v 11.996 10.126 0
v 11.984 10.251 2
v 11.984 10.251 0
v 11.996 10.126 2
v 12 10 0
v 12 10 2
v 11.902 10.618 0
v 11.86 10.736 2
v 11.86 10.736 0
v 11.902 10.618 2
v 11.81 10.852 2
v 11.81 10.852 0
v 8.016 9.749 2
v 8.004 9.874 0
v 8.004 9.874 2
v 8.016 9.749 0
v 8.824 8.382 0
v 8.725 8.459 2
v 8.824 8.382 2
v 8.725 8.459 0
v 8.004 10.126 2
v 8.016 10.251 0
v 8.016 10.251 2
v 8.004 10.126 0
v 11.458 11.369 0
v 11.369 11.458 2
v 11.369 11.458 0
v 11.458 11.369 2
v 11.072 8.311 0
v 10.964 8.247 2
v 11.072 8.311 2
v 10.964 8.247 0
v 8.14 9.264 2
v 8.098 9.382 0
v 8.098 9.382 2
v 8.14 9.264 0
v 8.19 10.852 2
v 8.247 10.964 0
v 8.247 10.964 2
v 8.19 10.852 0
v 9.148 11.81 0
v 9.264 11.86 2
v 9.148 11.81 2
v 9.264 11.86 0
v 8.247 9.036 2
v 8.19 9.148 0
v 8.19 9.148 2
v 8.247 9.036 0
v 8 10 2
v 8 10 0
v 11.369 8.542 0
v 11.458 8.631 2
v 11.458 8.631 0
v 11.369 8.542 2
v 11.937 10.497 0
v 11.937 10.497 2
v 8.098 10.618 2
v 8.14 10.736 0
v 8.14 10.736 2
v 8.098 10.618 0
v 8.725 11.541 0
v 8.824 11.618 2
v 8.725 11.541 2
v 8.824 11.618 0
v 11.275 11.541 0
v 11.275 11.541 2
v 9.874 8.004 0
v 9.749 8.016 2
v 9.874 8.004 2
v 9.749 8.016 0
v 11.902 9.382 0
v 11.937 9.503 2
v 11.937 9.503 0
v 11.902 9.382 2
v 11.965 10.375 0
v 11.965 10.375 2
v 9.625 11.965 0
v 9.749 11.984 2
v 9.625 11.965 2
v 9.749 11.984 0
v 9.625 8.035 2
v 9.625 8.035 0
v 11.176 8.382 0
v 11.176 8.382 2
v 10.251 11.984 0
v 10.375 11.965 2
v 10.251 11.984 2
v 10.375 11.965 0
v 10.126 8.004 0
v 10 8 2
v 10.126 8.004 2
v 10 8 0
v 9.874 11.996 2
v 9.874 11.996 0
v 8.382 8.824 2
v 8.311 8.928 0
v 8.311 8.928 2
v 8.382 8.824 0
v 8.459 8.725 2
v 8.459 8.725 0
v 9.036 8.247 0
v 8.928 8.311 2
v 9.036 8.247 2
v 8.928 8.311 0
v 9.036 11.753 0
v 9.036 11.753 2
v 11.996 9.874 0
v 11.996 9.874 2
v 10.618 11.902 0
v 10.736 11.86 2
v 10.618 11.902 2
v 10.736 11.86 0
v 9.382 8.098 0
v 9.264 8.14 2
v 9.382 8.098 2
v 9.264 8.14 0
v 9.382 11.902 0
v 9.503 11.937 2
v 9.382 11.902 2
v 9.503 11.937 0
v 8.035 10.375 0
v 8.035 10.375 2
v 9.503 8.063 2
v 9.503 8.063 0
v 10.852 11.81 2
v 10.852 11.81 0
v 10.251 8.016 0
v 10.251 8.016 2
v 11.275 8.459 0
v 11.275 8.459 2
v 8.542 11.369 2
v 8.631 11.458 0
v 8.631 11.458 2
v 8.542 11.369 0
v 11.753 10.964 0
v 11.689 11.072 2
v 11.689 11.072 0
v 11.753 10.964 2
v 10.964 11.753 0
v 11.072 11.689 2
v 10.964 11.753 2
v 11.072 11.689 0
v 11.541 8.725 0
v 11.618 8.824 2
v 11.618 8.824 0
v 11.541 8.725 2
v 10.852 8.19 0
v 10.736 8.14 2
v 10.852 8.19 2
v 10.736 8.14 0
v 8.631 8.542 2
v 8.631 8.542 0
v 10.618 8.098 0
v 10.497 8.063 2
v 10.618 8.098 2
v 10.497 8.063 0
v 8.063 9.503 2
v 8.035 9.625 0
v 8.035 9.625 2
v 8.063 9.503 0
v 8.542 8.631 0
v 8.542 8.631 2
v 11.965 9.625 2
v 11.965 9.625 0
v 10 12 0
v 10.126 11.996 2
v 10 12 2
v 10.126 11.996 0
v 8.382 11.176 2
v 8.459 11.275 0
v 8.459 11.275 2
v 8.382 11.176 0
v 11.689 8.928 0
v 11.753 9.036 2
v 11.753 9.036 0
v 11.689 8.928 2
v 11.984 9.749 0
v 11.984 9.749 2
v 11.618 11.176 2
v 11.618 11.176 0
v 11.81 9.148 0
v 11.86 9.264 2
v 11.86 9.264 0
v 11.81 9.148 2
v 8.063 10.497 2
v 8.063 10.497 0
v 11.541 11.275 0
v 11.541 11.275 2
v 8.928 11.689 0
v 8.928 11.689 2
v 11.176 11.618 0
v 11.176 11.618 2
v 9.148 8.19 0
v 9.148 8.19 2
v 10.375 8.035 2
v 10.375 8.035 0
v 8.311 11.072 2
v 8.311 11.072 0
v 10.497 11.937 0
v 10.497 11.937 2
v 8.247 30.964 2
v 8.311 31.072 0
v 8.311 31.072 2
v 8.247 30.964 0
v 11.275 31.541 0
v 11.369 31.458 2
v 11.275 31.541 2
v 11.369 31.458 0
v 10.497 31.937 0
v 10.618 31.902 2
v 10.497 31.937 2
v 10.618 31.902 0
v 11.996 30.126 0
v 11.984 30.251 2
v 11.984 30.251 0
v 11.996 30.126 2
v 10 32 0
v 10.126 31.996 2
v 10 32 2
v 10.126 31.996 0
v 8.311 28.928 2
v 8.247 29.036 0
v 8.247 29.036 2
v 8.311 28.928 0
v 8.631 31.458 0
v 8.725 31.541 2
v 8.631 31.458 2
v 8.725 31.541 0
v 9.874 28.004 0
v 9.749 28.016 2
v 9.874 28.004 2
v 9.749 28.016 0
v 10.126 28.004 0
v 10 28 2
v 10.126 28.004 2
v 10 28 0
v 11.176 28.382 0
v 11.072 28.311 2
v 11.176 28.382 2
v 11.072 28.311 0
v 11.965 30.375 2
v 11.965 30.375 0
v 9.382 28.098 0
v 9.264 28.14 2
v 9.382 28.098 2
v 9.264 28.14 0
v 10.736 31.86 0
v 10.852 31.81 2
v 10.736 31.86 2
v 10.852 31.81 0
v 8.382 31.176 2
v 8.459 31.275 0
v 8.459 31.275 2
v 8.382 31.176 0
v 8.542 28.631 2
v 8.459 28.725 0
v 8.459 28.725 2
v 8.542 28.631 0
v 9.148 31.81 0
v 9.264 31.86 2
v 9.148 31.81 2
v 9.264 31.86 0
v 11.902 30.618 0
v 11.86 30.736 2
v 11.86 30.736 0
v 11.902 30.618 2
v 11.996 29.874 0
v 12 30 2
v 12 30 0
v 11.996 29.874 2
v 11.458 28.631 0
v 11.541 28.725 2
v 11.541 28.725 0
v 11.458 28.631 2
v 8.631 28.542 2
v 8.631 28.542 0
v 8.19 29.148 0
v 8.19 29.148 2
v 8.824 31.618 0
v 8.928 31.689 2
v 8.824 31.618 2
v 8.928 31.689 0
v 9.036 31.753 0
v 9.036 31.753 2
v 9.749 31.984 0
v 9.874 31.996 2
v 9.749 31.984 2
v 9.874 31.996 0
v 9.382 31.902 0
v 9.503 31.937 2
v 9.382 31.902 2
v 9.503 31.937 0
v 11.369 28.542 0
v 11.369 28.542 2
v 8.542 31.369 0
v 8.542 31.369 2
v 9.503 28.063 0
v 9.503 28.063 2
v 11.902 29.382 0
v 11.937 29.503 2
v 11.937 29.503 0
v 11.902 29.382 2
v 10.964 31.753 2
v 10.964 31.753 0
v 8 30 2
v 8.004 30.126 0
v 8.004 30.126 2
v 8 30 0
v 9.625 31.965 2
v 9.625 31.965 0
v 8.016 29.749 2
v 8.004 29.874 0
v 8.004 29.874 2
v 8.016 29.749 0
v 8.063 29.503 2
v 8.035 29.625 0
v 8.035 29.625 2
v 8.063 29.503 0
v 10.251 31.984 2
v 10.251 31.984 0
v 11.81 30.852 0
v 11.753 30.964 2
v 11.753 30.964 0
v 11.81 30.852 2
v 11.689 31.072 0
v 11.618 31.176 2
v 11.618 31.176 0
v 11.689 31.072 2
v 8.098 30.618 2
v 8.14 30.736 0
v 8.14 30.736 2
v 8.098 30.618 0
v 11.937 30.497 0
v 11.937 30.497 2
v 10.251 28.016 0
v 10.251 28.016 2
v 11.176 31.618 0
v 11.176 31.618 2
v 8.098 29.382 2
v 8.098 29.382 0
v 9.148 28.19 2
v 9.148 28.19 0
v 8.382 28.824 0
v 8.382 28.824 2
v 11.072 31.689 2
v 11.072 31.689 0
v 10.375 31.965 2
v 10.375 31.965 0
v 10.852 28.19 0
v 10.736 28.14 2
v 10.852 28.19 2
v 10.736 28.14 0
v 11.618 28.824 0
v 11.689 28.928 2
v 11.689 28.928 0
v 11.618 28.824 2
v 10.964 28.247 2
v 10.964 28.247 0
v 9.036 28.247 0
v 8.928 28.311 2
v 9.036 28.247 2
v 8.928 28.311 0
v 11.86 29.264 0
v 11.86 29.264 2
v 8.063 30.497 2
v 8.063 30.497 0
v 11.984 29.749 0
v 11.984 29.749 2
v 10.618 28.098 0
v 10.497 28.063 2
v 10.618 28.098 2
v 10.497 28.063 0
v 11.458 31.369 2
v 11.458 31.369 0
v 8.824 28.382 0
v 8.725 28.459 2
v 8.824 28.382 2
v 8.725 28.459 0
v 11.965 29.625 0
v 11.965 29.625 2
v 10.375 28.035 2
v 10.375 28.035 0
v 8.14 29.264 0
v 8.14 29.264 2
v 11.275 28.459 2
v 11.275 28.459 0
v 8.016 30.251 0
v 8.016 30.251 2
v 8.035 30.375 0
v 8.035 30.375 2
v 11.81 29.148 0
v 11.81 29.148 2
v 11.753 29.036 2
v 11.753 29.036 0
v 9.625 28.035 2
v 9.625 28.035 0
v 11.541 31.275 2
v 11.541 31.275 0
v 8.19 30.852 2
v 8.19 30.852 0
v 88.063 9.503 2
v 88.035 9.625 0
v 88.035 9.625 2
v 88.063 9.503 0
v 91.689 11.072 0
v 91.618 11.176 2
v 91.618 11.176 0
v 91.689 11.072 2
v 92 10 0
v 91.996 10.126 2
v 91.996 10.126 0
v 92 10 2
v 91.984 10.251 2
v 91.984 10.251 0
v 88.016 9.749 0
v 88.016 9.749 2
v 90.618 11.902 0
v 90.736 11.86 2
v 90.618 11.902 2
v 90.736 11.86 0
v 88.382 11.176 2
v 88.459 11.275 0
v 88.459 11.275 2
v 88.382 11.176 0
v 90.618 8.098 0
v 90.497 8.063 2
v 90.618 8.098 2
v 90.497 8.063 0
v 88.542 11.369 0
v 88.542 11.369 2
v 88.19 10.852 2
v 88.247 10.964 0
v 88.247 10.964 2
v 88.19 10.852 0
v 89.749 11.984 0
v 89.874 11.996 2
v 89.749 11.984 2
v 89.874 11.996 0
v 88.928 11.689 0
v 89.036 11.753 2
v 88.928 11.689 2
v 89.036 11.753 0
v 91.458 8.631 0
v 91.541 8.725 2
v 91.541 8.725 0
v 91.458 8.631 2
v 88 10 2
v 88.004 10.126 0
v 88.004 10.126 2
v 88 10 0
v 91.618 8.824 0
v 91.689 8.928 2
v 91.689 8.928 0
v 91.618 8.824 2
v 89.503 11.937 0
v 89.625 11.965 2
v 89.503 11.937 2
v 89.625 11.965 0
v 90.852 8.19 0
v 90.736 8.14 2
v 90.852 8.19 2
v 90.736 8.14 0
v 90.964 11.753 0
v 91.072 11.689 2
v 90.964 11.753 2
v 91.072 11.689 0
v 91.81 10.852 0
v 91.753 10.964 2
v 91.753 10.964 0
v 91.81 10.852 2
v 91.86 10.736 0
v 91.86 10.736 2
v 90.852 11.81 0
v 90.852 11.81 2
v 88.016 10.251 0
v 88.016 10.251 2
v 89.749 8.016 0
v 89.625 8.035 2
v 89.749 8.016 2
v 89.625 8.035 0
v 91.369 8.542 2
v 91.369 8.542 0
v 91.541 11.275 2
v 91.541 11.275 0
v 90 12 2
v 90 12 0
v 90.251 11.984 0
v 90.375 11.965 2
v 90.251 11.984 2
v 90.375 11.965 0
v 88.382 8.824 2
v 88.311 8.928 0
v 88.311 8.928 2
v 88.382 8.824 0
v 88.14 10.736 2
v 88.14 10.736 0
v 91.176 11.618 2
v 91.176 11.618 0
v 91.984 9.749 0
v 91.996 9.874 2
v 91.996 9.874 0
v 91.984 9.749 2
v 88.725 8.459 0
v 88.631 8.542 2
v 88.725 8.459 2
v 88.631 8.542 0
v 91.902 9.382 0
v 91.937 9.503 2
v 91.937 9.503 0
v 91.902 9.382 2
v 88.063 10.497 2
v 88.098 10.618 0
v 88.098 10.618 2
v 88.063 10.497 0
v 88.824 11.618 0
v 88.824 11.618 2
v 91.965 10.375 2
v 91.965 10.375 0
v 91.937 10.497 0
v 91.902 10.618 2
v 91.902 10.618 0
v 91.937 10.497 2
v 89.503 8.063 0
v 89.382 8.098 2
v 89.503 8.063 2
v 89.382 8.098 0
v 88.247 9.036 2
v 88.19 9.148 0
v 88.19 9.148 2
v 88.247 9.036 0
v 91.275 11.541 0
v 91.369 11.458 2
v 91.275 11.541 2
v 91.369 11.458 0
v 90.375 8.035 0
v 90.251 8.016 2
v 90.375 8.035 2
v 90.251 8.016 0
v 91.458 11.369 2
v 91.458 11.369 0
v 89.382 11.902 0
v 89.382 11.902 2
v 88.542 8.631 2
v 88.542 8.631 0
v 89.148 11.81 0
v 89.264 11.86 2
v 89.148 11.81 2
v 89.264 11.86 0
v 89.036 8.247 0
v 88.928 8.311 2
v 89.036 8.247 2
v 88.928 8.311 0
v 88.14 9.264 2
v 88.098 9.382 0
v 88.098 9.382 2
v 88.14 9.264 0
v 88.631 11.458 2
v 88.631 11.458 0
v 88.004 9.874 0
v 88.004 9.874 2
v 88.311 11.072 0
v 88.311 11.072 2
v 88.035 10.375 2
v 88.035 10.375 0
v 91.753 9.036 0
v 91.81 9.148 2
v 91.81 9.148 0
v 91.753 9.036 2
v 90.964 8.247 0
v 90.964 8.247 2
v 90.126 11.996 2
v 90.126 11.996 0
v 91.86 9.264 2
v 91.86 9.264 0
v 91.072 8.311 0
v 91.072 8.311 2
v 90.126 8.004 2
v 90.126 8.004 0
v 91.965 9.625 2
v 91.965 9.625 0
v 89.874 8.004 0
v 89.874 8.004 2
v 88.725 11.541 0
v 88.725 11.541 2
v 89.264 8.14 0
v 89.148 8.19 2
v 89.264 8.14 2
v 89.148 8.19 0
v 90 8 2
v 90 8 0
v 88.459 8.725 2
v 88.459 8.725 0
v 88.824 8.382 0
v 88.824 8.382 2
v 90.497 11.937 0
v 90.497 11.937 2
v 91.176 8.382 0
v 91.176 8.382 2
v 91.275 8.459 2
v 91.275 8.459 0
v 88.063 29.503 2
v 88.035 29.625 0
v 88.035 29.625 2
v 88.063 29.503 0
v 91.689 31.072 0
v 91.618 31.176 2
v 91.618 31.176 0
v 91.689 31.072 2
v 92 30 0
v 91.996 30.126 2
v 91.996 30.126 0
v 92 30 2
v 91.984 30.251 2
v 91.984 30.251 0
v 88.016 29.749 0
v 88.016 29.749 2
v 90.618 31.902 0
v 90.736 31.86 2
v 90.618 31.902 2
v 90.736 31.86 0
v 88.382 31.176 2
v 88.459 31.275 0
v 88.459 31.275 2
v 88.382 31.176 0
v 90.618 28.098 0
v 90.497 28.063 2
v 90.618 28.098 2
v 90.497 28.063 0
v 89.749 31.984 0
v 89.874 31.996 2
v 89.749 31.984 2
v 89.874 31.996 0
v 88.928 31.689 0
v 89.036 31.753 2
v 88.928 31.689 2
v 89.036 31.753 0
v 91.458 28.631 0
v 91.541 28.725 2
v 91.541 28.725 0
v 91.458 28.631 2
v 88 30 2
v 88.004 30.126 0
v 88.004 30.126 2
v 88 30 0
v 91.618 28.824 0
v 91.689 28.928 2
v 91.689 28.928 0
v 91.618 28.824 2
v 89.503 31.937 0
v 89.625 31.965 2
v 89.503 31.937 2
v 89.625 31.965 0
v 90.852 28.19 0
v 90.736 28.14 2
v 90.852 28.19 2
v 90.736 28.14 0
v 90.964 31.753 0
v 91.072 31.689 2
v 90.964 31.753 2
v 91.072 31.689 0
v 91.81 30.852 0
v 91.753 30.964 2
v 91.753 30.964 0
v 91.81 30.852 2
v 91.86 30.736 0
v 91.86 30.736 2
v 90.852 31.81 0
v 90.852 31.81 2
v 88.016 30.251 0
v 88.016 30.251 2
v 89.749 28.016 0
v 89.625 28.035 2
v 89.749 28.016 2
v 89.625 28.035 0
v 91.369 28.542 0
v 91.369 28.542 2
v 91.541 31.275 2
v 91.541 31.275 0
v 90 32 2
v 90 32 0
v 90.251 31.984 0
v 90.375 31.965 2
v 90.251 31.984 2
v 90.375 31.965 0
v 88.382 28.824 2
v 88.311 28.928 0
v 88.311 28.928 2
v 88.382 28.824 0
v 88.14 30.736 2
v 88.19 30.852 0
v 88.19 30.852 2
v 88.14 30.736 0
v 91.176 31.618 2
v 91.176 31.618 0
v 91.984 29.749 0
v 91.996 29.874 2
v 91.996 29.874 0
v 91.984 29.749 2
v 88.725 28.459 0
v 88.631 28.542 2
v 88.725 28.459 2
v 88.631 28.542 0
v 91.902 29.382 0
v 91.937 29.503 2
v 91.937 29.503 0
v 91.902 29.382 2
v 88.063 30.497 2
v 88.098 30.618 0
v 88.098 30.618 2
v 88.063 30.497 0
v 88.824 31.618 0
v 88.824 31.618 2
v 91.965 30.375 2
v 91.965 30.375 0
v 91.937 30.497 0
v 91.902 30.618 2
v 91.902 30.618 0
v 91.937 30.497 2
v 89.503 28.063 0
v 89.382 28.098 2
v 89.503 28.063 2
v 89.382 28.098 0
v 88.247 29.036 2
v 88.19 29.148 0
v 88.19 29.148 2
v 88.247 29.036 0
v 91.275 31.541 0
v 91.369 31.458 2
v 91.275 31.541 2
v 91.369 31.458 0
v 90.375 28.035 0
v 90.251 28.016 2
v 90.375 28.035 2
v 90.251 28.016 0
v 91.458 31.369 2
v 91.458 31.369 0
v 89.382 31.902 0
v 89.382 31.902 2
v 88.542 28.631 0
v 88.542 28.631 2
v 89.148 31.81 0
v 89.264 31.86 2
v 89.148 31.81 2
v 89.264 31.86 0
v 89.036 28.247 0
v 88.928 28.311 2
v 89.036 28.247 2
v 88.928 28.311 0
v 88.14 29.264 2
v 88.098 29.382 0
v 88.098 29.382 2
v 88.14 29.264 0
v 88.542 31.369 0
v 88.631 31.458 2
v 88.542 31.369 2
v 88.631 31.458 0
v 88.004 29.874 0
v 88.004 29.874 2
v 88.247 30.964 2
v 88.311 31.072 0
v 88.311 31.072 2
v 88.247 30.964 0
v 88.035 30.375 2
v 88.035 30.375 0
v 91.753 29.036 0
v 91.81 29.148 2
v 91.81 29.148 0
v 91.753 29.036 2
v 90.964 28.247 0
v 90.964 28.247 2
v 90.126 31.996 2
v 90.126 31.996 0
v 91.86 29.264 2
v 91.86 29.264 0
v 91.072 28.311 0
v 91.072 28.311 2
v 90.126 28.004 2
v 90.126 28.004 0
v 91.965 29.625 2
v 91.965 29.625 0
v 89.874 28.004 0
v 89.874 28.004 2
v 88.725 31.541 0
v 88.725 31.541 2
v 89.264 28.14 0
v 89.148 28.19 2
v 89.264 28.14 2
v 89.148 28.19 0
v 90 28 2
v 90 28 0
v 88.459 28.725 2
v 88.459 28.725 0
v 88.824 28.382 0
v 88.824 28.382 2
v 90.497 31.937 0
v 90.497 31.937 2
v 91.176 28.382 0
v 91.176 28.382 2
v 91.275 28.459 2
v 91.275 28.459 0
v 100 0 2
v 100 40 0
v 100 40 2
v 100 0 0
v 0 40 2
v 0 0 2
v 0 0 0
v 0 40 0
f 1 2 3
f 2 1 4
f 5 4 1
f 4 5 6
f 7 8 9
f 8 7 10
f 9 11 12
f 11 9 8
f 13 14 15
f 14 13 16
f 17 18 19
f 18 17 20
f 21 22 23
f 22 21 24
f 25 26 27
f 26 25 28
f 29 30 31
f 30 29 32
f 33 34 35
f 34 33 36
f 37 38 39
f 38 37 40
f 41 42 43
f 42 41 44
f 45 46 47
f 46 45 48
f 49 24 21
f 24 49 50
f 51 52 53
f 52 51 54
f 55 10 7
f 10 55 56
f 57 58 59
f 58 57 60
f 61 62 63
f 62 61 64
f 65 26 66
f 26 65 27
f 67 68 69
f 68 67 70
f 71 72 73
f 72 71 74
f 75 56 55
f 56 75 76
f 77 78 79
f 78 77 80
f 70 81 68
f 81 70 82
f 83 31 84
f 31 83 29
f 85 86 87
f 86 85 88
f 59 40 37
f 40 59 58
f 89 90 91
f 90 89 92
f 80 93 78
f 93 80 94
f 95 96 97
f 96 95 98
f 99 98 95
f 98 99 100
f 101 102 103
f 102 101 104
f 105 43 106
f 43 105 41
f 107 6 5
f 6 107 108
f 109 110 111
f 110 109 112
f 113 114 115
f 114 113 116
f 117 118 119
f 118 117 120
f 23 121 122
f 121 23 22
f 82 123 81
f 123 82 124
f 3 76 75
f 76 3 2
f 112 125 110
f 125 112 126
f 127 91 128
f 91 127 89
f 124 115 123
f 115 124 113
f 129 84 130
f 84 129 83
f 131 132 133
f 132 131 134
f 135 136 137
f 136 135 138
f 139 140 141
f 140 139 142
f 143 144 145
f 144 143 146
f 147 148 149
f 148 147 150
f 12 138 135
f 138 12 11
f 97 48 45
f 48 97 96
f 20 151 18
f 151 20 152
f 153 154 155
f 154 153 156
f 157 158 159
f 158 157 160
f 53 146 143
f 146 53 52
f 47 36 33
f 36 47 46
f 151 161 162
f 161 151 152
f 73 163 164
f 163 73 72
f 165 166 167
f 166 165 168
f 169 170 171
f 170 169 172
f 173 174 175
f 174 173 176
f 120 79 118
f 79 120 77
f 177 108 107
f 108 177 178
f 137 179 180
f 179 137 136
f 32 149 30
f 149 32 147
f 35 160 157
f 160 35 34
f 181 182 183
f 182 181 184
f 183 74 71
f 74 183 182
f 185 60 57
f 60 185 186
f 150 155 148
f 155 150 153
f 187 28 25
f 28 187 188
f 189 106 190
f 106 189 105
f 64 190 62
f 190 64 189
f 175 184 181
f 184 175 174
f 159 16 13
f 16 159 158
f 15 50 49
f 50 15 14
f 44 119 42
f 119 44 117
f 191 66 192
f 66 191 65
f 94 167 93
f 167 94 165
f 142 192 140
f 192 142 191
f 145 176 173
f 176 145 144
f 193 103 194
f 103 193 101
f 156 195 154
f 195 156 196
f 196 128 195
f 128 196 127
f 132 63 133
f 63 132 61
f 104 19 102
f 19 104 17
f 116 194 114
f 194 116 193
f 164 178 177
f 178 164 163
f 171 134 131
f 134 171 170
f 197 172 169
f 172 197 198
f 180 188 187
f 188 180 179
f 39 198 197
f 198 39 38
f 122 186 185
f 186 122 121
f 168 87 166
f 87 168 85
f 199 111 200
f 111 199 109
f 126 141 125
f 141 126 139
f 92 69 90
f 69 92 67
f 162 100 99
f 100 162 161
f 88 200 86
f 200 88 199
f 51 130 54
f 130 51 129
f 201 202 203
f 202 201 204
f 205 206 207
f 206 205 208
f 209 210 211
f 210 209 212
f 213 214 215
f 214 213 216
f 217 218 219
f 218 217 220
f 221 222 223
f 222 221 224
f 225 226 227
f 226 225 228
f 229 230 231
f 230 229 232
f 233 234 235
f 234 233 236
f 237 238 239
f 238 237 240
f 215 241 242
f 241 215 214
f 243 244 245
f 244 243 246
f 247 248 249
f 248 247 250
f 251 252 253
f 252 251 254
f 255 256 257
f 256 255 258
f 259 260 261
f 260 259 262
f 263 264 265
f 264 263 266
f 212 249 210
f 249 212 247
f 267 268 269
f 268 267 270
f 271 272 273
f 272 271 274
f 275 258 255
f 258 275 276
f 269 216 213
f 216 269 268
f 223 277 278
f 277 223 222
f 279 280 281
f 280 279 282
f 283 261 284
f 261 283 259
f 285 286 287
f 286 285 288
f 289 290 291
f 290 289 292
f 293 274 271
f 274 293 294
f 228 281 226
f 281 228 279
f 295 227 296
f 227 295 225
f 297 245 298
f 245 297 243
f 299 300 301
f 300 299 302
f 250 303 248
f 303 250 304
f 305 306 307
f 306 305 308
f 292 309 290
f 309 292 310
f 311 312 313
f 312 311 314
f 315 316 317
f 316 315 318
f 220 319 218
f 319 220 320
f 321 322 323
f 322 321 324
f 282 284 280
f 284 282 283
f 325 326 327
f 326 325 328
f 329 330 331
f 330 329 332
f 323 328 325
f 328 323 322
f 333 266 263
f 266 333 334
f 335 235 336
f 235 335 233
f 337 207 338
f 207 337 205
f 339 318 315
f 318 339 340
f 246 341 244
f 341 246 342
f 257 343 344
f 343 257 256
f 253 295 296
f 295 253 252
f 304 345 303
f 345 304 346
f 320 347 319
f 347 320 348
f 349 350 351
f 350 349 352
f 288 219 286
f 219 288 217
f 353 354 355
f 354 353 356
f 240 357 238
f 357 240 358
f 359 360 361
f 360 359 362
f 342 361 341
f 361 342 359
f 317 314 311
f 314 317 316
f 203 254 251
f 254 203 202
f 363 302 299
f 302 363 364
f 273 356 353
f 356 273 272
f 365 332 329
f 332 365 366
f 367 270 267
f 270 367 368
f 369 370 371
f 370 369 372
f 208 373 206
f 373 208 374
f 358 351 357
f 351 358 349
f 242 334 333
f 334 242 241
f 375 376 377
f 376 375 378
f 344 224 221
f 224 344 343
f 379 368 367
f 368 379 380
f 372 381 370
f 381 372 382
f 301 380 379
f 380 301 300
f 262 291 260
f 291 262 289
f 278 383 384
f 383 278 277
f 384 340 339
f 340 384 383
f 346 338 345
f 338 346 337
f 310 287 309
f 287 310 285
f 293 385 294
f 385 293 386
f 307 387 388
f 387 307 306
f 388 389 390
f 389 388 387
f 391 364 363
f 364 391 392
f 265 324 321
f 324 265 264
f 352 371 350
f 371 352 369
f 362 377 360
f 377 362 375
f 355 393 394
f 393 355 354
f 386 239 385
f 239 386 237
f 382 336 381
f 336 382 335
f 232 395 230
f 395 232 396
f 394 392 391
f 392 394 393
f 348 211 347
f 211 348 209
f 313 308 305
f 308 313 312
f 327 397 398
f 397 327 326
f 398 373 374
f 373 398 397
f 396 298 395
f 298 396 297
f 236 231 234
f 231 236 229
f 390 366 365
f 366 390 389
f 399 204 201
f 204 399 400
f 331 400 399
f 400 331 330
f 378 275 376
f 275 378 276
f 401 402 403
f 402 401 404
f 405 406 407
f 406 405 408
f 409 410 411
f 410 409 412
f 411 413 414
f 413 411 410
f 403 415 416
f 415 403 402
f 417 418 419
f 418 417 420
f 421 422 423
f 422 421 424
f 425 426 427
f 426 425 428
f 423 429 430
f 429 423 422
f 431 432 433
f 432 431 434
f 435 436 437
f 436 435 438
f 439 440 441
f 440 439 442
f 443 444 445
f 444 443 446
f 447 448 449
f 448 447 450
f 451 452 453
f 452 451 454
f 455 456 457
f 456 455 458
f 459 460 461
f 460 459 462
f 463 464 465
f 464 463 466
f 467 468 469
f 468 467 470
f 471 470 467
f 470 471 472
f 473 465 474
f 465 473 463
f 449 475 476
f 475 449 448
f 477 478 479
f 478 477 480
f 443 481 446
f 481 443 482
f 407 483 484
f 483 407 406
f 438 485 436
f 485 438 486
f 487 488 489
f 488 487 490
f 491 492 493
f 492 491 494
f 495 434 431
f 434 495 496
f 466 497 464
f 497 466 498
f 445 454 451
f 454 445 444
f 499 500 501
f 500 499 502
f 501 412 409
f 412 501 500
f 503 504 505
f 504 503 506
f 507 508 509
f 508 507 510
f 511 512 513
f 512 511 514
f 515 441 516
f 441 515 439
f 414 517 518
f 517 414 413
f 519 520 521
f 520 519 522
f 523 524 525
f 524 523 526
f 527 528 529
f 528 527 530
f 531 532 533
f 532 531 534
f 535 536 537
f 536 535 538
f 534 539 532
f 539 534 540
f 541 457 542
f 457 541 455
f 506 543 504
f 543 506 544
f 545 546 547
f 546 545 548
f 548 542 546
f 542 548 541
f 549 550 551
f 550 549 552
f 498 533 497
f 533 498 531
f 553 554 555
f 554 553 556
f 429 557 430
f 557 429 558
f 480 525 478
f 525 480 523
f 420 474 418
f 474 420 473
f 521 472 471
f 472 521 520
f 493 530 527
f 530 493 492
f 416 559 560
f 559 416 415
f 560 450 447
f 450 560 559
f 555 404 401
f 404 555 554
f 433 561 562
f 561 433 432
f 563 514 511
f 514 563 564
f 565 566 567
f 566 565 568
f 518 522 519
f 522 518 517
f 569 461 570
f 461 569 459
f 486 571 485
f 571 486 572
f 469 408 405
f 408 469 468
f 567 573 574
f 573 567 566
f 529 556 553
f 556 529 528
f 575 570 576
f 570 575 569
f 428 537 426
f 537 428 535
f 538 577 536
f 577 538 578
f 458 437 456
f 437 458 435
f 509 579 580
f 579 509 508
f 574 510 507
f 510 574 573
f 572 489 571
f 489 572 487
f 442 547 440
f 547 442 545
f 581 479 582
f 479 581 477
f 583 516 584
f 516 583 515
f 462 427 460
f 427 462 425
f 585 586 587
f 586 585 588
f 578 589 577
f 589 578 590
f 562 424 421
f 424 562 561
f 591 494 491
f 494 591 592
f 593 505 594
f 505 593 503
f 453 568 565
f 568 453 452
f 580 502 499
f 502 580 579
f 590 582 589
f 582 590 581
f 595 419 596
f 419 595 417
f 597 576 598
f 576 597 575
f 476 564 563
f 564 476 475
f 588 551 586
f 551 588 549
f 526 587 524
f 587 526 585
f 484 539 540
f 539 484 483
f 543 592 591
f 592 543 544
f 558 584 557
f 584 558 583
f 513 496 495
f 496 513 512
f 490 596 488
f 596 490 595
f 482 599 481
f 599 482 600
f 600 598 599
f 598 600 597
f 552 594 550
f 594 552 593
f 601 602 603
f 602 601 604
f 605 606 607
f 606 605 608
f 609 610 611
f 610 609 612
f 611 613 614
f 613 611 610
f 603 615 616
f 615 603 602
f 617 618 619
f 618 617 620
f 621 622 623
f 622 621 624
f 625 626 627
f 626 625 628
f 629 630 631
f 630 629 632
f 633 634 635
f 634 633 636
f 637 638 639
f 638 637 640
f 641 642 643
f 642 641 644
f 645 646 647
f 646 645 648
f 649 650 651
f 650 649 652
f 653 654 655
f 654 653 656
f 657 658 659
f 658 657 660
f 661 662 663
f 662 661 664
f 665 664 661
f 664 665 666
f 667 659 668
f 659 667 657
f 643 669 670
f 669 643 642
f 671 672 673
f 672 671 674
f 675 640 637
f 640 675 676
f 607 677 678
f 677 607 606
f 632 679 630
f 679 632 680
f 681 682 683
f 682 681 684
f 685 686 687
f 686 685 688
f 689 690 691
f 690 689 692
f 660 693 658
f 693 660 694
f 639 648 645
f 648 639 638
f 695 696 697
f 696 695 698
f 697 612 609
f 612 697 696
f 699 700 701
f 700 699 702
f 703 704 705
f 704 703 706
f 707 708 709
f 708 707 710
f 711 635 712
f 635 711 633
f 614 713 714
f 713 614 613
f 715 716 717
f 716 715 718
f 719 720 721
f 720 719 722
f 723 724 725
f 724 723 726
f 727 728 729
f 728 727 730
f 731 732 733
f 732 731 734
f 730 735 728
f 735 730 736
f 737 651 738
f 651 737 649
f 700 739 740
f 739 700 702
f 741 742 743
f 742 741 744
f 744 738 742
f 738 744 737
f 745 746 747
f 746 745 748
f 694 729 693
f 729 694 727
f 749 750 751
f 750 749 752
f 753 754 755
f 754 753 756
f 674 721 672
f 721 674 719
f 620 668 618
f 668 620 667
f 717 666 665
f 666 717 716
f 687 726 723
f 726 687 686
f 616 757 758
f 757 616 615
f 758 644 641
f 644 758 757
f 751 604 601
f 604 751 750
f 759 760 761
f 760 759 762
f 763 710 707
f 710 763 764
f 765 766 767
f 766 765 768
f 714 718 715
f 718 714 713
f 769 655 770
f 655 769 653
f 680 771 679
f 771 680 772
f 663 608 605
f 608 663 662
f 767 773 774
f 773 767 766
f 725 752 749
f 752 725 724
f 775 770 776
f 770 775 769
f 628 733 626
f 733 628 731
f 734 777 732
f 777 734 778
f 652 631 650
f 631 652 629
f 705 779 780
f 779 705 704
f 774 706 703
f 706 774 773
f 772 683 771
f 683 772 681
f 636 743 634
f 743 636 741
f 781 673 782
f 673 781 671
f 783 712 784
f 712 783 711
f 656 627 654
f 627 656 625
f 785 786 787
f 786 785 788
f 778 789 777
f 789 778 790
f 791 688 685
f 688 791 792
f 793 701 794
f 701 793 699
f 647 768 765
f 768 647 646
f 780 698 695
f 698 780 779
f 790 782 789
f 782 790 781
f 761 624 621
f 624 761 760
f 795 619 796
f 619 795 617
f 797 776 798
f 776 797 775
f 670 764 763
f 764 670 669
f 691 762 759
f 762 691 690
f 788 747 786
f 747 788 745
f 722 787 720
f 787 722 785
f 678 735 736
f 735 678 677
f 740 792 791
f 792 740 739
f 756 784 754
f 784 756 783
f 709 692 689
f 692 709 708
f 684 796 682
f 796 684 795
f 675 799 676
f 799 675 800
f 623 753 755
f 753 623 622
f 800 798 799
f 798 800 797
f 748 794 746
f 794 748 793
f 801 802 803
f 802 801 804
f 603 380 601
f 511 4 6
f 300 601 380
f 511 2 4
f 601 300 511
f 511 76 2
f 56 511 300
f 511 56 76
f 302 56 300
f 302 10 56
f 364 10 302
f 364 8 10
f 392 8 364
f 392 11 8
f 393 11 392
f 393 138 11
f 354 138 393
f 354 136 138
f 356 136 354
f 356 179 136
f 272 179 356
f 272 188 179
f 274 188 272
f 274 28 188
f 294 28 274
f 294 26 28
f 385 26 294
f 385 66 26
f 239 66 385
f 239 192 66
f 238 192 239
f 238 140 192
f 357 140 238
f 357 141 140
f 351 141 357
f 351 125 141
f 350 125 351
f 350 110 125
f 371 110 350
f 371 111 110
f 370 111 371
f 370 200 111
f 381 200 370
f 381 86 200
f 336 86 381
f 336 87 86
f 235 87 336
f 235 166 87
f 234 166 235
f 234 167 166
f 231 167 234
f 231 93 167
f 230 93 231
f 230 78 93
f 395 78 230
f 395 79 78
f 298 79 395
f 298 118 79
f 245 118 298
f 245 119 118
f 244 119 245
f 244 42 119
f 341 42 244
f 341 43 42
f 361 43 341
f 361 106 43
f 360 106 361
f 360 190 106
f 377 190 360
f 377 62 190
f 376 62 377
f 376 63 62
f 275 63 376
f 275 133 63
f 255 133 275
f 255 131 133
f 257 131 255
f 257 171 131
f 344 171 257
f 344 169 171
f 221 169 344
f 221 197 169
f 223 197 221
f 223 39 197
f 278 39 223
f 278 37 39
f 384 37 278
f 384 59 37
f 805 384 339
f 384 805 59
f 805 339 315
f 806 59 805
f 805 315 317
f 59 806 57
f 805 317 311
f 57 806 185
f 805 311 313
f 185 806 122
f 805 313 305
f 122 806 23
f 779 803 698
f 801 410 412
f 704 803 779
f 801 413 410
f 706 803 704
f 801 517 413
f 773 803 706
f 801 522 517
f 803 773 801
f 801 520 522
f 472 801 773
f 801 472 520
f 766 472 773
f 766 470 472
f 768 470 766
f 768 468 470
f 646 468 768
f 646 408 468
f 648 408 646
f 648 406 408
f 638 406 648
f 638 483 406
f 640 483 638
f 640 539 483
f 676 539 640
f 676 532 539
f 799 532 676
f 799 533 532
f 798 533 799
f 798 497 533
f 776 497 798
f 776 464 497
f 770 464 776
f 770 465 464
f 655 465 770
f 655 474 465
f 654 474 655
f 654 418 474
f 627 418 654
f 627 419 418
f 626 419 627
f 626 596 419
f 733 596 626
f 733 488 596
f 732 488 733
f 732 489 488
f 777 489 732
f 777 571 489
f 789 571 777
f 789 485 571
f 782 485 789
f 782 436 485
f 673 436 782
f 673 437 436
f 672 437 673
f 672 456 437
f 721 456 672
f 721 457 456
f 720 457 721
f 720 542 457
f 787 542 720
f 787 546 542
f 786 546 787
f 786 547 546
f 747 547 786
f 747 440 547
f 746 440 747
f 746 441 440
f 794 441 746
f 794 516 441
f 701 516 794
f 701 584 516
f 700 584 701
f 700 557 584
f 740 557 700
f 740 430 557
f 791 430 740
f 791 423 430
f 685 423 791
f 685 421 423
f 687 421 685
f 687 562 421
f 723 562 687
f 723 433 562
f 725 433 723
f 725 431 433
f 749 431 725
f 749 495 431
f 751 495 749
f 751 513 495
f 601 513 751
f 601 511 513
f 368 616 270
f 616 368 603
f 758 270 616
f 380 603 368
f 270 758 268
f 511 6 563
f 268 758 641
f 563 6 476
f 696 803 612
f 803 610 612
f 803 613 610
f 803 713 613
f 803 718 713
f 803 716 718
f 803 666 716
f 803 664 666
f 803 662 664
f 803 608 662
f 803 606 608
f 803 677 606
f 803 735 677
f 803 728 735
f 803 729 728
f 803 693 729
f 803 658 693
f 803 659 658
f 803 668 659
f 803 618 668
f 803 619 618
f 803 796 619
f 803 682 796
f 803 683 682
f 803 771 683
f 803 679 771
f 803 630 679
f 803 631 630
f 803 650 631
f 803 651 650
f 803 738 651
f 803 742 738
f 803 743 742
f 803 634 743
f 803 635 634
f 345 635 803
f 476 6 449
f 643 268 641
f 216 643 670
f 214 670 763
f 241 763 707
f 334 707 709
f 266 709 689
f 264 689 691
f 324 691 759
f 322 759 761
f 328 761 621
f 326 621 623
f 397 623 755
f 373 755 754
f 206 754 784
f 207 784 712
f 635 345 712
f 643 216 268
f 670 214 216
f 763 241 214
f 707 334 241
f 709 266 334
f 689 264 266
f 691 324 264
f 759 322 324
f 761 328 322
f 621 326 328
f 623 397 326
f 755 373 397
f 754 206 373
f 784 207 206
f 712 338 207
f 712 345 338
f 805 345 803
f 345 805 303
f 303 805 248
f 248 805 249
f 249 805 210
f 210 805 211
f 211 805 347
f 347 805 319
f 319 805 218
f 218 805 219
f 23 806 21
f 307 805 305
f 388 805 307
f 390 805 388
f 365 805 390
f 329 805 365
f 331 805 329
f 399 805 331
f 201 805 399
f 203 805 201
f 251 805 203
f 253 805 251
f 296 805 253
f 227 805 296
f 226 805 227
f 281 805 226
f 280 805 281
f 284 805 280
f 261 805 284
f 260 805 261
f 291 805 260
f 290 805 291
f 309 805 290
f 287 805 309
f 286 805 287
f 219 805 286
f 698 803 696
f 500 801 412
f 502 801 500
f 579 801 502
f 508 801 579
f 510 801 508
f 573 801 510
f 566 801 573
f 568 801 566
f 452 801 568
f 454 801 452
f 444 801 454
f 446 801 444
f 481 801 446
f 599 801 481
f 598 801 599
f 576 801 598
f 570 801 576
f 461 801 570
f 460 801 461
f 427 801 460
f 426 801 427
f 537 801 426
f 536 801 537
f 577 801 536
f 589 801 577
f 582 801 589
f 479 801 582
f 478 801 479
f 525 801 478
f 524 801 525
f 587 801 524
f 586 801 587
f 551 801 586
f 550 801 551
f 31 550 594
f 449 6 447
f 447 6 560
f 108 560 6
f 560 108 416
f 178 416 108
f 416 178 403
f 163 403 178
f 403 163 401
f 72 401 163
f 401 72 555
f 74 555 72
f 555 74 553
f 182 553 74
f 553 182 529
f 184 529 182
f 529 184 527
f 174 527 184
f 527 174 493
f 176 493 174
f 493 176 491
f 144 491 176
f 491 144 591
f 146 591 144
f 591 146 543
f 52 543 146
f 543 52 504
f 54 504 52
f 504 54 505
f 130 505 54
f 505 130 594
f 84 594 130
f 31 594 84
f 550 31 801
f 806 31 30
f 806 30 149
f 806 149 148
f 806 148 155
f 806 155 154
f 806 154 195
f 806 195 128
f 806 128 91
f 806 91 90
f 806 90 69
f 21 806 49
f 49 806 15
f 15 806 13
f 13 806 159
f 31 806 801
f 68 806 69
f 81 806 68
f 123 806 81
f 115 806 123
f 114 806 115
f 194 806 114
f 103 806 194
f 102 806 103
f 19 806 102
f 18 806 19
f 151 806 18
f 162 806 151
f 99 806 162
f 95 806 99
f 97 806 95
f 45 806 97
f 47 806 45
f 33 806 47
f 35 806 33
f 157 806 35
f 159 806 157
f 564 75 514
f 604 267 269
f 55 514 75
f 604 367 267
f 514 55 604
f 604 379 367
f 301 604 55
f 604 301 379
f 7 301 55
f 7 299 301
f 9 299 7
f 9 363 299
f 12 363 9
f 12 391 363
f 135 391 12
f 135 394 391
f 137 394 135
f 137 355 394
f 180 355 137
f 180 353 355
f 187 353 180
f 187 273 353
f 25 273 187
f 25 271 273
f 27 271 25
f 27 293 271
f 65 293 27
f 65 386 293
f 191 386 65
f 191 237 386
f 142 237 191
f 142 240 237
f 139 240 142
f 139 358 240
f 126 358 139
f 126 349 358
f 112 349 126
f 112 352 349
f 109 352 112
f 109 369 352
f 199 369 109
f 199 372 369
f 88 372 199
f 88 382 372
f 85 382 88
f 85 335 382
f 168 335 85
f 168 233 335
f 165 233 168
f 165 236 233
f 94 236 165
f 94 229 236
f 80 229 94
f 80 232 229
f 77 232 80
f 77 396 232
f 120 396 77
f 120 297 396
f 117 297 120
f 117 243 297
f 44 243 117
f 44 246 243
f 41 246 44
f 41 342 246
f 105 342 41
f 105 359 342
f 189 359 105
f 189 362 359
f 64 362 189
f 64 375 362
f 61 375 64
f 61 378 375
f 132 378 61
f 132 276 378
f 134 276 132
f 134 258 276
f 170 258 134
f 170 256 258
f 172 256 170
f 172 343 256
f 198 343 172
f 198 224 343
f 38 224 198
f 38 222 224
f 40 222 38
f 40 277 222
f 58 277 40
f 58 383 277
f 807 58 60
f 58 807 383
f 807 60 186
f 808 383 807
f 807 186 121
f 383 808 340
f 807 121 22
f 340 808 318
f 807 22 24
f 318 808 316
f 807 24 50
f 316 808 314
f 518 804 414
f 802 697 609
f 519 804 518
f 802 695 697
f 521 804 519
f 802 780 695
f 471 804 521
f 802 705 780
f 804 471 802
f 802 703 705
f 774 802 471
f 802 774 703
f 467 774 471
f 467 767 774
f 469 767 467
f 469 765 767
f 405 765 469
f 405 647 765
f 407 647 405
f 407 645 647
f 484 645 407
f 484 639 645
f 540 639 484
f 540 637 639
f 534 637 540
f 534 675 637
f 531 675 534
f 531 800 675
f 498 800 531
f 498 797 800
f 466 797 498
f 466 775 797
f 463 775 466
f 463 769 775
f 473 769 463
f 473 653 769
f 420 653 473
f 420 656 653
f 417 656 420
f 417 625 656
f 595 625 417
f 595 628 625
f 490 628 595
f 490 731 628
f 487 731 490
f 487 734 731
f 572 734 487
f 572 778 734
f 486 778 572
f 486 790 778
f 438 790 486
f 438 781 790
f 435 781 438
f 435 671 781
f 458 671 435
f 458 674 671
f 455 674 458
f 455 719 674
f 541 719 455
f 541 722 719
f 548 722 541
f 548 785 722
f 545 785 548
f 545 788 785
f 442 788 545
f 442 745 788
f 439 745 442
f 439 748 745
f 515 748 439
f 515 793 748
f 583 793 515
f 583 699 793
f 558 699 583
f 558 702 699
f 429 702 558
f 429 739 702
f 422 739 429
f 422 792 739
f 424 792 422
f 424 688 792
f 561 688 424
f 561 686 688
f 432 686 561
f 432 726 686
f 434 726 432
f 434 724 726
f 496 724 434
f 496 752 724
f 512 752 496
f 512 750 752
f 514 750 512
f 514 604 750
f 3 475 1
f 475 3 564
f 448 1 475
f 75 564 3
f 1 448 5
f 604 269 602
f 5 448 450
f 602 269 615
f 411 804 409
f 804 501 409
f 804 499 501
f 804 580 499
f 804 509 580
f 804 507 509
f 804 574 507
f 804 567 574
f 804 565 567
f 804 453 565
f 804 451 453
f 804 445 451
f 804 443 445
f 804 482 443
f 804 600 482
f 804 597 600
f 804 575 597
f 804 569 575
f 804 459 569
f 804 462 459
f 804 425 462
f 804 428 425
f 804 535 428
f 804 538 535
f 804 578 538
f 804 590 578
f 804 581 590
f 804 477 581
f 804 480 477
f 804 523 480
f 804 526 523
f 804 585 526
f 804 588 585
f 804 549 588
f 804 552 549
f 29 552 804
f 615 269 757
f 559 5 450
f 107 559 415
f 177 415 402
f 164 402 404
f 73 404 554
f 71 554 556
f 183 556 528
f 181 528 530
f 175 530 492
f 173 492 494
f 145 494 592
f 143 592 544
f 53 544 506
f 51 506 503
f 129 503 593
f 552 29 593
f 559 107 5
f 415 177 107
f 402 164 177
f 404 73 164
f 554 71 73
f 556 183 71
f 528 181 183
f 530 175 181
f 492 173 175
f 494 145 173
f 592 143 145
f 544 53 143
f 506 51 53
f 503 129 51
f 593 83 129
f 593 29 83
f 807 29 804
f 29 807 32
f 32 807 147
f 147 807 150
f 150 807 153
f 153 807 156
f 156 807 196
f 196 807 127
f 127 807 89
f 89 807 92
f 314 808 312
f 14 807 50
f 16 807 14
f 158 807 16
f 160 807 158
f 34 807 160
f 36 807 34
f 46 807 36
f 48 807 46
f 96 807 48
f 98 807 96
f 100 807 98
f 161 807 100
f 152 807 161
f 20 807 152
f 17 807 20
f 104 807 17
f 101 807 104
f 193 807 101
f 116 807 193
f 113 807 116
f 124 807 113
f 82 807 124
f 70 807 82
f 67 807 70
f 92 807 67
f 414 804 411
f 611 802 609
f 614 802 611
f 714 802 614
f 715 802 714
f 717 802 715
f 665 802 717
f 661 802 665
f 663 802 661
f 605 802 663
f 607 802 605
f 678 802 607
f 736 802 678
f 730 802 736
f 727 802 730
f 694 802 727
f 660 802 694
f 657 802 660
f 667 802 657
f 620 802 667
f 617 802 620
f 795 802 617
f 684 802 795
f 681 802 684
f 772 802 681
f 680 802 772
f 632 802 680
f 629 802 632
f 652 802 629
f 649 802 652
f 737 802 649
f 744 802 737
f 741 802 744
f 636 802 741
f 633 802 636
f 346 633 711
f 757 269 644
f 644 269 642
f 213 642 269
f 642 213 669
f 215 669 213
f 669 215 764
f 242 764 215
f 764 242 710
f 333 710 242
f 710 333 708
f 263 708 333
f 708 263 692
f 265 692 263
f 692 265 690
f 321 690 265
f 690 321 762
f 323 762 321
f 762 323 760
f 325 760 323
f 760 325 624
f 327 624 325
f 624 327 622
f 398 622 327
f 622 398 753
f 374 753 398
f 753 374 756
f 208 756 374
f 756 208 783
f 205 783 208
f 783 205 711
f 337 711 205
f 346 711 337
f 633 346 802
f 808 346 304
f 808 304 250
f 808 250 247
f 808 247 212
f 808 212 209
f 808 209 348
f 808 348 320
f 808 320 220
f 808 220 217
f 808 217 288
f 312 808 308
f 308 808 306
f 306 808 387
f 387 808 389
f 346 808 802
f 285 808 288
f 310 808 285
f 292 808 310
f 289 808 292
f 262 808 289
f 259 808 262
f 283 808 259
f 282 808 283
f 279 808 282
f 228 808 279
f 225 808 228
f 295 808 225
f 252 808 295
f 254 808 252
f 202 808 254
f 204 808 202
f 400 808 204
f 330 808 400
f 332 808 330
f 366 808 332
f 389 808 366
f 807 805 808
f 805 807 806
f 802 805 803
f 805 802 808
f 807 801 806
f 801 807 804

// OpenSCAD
difference(){
	union(){


      translate([0,0,0]){
            cube([100,40,2], center=false);
      }


}
	union() {

        translate([10,10,-1]){
            rotate([0,0,0]){
                cylinder(h=500, r=2, $fn=100, center=false);
            }
        }
        translate([10,30,-1]){
            rotate([0,0,0]){
                cylinder(h=500, r=2, $fn=100, center=false);
            }
        }
        translate([90,10,-1]){
            rotate([0,0,0]){
                cylinder(h=500, r=2, $fn=100, center=false);
            }
        }
        translate([90,30,-1]){
            rotate([0,0,0]){
                cylinder(h=500, r=2, $fn=100, center=false);
            }
        }



    

      
	}
}
